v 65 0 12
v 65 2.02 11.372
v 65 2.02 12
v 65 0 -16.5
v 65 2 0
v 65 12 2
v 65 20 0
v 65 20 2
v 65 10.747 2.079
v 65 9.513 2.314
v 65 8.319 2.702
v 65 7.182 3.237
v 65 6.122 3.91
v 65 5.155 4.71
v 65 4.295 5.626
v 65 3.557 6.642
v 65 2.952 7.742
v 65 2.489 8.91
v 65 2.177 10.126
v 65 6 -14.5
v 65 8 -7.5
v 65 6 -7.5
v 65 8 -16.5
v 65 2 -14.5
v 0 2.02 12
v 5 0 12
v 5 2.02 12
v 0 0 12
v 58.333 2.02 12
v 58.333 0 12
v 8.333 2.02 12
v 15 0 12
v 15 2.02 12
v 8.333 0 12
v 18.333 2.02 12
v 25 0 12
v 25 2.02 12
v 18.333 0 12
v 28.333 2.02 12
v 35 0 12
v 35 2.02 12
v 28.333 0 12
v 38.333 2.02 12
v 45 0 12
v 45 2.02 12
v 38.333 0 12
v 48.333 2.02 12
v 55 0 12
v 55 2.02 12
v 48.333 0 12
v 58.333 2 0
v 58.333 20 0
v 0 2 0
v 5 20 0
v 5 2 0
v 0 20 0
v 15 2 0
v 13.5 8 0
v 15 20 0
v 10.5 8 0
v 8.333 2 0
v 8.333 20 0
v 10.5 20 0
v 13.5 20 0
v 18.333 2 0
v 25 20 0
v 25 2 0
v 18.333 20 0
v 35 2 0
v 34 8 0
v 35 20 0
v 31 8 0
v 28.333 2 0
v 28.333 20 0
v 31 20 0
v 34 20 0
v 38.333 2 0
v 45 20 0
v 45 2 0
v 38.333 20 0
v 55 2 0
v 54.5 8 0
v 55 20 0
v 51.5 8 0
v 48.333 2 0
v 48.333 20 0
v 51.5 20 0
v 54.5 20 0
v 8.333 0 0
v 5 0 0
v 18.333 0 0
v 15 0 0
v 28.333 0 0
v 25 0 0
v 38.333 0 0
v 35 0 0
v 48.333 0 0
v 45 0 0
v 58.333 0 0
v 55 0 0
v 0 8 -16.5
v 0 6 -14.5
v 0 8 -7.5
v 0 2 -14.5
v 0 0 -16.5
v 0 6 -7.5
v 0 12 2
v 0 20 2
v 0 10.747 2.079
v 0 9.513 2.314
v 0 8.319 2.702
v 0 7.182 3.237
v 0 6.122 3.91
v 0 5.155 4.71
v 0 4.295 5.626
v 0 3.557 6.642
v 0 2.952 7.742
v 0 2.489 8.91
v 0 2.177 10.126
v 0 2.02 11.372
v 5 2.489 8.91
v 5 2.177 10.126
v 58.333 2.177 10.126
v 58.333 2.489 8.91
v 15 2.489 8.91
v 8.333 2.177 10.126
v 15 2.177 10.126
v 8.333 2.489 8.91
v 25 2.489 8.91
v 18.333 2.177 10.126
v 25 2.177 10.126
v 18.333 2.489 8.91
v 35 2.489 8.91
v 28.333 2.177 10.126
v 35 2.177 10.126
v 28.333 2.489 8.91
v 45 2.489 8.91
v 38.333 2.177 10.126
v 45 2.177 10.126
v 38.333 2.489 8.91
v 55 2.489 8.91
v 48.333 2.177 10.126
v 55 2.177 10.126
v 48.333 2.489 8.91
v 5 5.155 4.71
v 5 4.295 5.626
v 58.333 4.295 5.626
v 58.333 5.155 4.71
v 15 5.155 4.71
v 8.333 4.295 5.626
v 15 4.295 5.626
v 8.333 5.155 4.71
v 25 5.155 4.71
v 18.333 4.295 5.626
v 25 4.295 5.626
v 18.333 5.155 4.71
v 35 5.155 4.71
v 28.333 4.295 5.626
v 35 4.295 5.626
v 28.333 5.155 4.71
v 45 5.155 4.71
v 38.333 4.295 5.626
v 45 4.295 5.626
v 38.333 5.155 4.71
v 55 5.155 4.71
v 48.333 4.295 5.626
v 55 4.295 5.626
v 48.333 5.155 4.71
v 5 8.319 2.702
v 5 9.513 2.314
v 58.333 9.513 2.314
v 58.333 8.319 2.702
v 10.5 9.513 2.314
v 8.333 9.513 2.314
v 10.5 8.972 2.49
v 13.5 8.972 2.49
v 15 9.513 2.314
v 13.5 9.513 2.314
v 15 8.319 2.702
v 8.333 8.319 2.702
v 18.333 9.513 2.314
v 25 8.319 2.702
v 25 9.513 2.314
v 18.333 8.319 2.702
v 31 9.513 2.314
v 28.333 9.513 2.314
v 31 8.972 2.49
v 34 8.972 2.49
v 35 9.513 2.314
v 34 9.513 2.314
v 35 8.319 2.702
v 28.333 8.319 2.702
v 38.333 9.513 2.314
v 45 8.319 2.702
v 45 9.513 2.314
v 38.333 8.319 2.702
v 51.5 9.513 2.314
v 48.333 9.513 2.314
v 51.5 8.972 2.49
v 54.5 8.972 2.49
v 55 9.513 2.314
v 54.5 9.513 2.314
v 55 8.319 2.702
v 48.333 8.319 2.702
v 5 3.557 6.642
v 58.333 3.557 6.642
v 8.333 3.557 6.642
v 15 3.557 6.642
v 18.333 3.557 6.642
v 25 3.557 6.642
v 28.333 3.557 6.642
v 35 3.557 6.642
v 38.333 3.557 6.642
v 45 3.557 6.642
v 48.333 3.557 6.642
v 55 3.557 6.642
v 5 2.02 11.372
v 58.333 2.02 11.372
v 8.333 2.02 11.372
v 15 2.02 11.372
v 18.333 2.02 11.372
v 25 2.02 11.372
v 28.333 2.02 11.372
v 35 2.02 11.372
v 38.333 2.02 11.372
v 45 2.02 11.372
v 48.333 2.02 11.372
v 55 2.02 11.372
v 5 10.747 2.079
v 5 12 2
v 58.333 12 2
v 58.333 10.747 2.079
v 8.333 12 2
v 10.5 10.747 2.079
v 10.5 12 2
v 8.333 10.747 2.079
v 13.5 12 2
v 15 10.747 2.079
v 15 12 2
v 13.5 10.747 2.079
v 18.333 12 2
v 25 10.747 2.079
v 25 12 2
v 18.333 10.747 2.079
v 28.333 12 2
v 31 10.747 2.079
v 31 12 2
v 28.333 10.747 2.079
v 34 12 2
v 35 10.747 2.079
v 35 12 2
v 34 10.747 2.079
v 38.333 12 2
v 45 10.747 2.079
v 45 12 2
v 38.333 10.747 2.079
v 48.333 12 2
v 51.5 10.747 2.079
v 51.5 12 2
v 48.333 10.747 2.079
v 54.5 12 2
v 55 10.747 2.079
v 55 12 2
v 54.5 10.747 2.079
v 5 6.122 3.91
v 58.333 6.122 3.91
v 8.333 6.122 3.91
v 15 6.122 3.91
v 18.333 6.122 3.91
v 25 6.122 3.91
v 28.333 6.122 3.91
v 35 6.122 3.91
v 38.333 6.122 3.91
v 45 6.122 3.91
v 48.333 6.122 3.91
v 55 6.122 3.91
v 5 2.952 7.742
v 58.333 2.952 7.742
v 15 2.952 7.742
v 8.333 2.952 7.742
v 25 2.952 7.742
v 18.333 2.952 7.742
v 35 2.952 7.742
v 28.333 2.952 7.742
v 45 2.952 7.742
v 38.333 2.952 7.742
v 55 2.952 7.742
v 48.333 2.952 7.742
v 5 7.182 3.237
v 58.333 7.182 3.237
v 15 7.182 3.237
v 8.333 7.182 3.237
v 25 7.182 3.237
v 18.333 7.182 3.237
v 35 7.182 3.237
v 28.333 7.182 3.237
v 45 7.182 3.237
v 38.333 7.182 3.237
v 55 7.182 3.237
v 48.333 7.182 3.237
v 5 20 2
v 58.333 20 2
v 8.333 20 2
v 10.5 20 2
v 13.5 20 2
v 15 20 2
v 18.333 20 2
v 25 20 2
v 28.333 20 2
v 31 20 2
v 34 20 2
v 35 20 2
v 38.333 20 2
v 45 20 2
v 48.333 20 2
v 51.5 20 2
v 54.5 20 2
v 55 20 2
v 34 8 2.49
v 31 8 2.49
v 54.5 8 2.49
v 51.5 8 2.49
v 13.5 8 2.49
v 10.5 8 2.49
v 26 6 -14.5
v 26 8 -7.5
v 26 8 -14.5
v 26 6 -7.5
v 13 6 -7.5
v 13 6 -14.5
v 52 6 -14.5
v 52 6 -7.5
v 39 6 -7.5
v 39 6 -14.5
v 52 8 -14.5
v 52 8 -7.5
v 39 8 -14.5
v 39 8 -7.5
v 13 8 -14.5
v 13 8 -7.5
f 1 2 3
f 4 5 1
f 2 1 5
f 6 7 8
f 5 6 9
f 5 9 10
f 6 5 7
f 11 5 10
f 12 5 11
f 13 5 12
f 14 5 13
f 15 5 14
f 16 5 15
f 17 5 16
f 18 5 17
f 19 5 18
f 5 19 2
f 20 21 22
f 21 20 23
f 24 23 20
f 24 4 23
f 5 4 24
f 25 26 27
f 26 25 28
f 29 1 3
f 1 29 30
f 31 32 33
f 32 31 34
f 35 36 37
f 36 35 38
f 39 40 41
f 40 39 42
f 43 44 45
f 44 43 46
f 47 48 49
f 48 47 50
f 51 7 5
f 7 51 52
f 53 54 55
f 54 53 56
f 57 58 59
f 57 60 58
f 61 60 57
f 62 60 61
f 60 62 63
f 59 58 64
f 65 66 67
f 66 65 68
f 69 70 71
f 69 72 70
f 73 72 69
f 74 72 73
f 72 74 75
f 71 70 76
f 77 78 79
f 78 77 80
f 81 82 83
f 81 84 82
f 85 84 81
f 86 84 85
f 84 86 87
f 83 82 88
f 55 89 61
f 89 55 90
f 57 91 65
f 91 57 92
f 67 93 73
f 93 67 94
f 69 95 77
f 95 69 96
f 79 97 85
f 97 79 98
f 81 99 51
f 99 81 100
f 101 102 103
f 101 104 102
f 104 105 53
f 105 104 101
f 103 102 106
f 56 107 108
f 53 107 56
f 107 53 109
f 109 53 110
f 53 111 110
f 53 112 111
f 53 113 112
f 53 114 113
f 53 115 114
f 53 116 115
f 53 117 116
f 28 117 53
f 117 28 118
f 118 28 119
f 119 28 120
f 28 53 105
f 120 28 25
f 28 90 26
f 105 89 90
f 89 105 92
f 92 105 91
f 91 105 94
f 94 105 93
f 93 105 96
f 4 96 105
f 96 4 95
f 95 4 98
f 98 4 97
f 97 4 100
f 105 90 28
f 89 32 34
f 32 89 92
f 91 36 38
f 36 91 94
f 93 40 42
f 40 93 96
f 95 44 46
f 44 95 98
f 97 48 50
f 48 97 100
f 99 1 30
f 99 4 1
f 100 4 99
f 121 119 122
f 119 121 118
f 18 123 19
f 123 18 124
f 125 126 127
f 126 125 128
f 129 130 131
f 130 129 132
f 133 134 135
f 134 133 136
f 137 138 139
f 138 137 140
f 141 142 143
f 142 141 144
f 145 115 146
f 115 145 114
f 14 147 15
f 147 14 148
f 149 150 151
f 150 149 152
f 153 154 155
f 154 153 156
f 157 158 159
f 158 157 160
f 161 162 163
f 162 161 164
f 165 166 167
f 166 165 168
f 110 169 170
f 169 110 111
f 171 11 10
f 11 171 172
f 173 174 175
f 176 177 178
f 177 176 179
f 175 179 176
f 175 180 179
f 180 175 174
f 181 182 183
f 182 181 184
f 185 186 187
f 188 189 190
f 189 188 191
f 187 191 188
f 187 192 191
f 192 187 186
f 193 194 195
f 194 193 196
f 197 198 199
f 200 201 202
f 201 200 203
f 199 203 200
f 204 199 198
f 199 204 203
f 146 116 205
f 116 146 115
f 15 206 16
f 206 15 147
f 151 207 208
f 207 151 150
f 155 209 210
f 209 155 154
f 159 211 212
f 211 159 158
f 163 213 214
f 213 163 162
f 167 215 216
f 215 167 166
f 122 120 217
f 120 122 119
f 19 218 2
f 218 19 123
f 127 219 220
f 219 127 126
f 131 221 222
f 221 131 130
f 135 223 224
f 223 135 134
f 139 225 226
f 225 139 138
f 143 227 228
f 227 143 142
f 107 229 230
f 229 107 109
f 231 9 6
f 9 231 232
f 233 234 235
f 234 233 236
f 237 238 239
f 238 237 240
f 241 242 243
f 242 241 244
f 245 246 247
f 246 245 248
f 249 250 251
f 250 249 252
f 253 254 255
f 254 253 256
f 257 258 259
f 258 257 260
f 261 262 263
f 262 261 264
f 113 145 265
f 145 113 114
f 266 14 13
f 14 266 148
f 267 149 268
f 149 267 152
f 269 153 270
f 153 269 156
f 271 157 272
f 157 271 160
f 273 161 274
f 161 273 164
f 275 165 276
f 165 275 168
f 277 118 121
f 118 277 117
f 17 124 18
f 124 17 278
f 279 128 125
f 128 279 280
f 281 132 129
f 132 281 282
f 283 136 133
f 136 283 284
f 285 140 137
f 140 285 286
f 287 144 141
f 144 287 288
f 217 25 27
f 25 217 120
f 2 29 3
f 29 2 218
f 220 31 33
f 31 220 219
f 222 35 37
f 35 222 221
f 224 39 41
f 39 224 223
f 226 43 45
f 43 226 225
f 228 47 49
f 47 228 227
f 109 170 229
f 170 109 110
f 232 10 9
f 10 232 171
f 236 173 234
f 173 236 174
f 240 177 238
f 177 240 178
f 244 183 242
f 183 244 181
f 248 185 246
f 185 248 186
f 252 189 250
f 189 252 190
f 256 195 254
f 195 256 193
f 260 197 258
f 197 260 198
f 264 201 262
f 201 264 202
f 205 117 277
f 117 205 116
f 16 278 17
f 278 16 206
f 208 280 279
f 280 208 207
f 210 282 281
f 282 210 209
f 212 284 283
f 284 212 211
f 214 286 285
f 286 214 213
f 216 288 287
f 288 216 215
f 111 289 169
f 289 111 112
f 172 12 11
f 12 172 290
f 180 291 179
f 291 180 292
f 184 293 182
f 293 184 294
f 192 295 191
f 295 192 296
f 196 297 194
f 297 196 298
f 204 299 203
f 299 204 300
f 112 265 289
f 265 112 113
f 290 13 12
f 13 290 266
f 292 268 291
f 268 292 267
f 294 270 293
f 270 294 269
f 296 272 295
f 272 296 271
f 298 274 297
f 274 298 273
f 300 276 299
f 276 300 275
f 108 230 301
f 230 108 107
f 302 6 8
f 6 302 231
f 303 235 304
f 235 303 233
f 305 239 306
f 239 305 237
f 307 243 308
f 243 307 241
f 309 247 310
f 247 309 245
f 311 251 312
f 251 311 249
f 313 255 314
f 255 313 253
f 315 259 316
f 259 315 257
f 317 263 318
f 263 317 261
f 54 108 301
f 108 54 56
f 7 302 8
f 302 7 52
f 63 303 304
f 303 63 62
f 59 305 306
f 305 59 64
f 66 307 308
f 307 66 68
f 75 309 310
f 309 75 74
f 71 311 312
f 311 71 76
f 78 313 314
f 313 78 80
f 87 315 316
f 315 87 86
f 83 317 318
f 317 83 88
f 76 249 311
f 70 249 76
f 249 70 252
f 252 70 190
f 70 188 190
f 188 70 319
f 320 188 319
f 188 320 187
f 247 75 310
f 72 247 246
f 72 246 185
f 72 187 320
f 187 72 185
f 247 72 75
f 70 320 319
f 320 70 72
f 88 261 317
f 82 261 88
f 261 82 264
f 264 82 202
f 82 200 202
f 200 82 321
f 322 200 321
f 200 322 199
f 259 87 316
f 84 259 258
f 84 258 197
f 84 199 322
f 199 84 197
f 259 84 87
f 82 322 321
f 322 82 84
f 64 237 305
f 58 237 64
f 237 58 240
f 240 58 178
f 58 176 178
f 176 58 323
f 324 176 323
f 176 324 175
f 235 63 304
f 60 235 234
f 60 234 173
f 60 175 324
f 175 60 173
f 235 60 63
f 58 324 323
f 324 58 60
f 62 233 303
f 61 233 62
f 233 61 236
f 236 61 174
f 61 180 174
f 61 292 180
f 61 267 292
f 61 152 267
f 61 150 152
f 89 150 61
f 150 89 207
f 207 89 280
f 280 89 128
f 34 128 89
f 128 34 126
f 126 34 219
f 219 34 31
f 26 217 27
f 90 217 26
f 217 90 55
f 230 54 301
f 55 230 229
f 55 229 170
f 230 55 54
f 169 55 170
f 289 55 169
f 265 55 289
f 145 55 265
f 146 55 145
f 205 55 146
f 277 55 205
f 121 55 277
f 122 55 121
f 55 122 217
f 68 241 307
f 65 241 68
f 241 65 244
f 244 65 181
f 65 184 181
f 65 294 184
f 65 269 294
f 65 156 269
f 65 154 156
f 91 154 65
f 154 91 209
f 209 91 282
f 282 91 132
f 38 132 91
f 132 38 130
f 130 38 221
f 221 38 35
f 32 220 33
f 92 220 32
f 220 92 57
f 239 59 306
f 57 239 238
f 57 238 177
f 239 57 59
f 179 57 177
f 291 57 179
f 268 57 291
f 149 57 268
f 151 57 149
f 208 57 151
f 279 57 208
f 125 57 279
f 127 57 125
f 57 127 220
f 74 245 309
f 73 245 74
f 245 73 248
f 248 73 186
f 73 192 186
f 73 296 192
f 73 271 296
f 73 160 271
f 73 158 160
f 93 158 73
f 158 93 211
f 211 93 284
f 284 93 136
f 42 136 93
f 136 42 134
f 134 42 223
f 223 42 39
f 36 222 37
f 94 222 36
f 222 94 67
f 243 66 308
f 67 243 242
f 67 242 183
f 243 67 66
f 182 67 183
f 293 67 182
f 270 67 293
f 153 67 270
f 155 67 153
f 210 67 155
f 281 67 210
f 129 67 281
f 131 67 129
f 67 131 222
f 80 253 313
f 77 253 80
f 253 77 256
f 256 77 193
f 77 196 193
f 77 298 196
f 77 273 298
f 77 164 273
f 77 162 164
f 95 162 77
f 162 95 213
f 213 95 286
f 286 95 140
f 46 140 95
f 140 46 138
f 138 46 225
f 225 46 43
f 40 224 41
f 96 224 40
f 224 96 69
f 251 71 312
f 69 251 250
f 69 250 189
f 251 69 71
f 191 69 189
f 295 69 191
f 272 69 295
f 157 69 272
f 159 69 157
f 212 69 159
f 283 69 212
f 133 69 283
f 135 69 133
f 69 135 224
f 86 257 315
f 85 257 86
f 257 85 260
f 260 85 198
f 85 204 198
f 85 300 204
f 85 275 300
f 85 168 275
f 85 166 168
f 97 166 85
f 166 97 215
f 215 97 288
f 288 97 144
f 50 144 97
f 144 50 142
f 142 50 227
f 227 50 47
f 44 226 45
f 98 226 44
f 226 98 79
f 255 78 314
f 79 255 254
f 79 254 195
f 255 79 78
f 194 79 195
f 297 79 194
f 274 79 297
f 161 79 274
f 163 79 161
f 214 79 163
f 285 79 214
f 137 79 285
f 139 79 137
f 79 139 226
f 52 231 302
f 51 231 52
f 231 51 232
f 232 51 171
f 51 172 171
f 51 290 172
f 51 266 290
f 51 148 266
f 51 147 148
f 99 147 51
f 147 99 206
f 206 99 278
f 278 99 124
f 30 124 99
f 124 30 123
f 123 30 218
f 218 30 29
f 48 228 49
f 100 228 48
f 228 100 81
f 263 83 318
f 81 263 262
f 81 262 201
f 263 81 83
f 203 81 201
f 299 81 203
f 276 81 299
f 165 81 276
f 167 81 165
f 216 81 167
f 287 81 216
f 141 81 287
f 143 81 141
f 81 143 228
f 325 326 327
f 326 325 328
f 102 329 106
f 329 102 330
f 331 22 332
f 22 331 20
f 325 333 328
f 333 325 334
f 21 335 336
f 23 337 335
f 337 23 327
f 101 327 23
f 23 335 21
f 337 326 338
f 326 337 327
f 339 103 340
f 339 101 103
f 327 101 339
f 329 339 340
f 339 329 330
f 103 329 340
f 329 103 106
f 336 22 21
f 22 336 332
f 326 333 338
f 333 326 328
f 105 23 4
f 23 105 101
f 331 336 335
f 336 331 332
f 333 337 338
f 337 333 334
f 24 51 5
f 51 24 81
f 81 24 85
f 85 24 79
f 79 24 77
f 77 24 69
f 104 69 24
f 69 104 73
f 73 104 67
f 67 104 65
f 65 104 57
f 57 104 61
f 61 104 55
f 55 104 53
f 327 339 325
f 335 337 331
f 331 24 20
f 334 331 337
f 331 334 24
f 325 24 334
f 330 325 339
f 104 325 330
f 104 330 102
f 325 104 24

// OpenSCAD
$fn = 50;

width = 65;
lip_front = 14.5;
lip_back = 7;
lip_spacing = 4;
thickness = 2;
guard_height = 10;
guard_width = 5;
guard_depth = 20;
cutout_width=3;
cutout_height=2.5;
cutout_distance=17.5;
cutout_depth_start=8;

module lip() {
    union() {
        cube([width, lip_front+thickness, thickness]);
        translate([0,0,-thickness-lip_spacing]) {
            difference() {
                cube([width, lip_back+thickness, thickness]);
                for(x=[1:2:4]) {
                    translate([x*width/5, 0, 0]) {
                        cube([width/5, lip_back+thickness, thickness]);
                    }
                }
            }
            cube([width, thickness, thickness*3]);
        }
    }
}

module guard() {
    radius=guard_height;    
    difference() {
        cube([width, guard_height+thickness, guard_height+thickness]);
        translate([-1,radius+thickness, radius+thickness])
        rotate(a=90, v=[0,1,0])
            cylinder(h=width+2, r=radius);
    }
    translate([0, guard_height+thickness,0])
        cube([width, guard_depth-guard_height-thickness, thickness]);
}

module cutout() {
    translate([width/2-cutout_width/2, cutout_depth_start, -0.01]) {
        cube([cutout_width, guard_height*2, cutout_height]);
        translate([cutout_distance+cutout_width, 0, 0])
        cube([cutout_width, guard_height*2, cutout_height]);
        translate([-cutout_distance-cutout_width, 0, 0])
        cube([cutout_width, guard_height*2, cutout_height]);
    }
    for(x=[guard_width:2*guard_width:width-1]) {
        translate([x, -1, -0.01])
            cube([guard_width/1.5, guard_depth+2, guard_height+thickness+2]);
    }
}

module main() {
    difference() {
        guard();
        cutout();
    }
    translate([0,thickness,-lip_front-thickness])
    rotate(a=90, v=[1,0,0])
        lip();
}

main();
